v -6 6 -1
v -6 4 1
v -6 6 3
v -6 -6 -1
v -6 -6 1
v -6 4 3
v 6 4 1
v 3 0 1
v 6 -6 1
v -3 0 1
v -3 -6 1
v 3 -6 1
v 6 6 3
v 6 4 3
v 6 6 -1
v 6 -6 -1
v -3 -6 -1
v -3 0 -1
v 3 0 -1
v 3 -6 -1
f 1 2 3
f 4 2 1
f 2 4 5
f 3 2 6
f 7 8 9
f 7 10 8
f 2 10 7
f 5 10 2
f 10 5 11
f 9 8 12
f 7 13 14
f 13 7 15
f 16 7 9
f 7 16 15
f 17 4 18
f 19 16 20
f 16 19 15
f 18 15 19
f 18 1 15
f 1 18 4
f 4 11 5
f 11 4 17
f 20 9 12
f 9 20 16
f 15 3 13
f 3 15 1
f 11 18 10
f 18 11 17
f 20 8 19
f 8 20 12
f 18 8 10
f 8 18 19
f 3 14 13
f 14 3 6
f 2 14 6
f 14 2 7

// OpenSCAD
longueur= 50;

union() {
    difference() {
        cube([12,12,2], center=true);
        translate([0,-6,0])
            cube([6,12,4], center=true);
    }
    translate([0,5,1])
        cube([12,2,4], center=true);
    
}
